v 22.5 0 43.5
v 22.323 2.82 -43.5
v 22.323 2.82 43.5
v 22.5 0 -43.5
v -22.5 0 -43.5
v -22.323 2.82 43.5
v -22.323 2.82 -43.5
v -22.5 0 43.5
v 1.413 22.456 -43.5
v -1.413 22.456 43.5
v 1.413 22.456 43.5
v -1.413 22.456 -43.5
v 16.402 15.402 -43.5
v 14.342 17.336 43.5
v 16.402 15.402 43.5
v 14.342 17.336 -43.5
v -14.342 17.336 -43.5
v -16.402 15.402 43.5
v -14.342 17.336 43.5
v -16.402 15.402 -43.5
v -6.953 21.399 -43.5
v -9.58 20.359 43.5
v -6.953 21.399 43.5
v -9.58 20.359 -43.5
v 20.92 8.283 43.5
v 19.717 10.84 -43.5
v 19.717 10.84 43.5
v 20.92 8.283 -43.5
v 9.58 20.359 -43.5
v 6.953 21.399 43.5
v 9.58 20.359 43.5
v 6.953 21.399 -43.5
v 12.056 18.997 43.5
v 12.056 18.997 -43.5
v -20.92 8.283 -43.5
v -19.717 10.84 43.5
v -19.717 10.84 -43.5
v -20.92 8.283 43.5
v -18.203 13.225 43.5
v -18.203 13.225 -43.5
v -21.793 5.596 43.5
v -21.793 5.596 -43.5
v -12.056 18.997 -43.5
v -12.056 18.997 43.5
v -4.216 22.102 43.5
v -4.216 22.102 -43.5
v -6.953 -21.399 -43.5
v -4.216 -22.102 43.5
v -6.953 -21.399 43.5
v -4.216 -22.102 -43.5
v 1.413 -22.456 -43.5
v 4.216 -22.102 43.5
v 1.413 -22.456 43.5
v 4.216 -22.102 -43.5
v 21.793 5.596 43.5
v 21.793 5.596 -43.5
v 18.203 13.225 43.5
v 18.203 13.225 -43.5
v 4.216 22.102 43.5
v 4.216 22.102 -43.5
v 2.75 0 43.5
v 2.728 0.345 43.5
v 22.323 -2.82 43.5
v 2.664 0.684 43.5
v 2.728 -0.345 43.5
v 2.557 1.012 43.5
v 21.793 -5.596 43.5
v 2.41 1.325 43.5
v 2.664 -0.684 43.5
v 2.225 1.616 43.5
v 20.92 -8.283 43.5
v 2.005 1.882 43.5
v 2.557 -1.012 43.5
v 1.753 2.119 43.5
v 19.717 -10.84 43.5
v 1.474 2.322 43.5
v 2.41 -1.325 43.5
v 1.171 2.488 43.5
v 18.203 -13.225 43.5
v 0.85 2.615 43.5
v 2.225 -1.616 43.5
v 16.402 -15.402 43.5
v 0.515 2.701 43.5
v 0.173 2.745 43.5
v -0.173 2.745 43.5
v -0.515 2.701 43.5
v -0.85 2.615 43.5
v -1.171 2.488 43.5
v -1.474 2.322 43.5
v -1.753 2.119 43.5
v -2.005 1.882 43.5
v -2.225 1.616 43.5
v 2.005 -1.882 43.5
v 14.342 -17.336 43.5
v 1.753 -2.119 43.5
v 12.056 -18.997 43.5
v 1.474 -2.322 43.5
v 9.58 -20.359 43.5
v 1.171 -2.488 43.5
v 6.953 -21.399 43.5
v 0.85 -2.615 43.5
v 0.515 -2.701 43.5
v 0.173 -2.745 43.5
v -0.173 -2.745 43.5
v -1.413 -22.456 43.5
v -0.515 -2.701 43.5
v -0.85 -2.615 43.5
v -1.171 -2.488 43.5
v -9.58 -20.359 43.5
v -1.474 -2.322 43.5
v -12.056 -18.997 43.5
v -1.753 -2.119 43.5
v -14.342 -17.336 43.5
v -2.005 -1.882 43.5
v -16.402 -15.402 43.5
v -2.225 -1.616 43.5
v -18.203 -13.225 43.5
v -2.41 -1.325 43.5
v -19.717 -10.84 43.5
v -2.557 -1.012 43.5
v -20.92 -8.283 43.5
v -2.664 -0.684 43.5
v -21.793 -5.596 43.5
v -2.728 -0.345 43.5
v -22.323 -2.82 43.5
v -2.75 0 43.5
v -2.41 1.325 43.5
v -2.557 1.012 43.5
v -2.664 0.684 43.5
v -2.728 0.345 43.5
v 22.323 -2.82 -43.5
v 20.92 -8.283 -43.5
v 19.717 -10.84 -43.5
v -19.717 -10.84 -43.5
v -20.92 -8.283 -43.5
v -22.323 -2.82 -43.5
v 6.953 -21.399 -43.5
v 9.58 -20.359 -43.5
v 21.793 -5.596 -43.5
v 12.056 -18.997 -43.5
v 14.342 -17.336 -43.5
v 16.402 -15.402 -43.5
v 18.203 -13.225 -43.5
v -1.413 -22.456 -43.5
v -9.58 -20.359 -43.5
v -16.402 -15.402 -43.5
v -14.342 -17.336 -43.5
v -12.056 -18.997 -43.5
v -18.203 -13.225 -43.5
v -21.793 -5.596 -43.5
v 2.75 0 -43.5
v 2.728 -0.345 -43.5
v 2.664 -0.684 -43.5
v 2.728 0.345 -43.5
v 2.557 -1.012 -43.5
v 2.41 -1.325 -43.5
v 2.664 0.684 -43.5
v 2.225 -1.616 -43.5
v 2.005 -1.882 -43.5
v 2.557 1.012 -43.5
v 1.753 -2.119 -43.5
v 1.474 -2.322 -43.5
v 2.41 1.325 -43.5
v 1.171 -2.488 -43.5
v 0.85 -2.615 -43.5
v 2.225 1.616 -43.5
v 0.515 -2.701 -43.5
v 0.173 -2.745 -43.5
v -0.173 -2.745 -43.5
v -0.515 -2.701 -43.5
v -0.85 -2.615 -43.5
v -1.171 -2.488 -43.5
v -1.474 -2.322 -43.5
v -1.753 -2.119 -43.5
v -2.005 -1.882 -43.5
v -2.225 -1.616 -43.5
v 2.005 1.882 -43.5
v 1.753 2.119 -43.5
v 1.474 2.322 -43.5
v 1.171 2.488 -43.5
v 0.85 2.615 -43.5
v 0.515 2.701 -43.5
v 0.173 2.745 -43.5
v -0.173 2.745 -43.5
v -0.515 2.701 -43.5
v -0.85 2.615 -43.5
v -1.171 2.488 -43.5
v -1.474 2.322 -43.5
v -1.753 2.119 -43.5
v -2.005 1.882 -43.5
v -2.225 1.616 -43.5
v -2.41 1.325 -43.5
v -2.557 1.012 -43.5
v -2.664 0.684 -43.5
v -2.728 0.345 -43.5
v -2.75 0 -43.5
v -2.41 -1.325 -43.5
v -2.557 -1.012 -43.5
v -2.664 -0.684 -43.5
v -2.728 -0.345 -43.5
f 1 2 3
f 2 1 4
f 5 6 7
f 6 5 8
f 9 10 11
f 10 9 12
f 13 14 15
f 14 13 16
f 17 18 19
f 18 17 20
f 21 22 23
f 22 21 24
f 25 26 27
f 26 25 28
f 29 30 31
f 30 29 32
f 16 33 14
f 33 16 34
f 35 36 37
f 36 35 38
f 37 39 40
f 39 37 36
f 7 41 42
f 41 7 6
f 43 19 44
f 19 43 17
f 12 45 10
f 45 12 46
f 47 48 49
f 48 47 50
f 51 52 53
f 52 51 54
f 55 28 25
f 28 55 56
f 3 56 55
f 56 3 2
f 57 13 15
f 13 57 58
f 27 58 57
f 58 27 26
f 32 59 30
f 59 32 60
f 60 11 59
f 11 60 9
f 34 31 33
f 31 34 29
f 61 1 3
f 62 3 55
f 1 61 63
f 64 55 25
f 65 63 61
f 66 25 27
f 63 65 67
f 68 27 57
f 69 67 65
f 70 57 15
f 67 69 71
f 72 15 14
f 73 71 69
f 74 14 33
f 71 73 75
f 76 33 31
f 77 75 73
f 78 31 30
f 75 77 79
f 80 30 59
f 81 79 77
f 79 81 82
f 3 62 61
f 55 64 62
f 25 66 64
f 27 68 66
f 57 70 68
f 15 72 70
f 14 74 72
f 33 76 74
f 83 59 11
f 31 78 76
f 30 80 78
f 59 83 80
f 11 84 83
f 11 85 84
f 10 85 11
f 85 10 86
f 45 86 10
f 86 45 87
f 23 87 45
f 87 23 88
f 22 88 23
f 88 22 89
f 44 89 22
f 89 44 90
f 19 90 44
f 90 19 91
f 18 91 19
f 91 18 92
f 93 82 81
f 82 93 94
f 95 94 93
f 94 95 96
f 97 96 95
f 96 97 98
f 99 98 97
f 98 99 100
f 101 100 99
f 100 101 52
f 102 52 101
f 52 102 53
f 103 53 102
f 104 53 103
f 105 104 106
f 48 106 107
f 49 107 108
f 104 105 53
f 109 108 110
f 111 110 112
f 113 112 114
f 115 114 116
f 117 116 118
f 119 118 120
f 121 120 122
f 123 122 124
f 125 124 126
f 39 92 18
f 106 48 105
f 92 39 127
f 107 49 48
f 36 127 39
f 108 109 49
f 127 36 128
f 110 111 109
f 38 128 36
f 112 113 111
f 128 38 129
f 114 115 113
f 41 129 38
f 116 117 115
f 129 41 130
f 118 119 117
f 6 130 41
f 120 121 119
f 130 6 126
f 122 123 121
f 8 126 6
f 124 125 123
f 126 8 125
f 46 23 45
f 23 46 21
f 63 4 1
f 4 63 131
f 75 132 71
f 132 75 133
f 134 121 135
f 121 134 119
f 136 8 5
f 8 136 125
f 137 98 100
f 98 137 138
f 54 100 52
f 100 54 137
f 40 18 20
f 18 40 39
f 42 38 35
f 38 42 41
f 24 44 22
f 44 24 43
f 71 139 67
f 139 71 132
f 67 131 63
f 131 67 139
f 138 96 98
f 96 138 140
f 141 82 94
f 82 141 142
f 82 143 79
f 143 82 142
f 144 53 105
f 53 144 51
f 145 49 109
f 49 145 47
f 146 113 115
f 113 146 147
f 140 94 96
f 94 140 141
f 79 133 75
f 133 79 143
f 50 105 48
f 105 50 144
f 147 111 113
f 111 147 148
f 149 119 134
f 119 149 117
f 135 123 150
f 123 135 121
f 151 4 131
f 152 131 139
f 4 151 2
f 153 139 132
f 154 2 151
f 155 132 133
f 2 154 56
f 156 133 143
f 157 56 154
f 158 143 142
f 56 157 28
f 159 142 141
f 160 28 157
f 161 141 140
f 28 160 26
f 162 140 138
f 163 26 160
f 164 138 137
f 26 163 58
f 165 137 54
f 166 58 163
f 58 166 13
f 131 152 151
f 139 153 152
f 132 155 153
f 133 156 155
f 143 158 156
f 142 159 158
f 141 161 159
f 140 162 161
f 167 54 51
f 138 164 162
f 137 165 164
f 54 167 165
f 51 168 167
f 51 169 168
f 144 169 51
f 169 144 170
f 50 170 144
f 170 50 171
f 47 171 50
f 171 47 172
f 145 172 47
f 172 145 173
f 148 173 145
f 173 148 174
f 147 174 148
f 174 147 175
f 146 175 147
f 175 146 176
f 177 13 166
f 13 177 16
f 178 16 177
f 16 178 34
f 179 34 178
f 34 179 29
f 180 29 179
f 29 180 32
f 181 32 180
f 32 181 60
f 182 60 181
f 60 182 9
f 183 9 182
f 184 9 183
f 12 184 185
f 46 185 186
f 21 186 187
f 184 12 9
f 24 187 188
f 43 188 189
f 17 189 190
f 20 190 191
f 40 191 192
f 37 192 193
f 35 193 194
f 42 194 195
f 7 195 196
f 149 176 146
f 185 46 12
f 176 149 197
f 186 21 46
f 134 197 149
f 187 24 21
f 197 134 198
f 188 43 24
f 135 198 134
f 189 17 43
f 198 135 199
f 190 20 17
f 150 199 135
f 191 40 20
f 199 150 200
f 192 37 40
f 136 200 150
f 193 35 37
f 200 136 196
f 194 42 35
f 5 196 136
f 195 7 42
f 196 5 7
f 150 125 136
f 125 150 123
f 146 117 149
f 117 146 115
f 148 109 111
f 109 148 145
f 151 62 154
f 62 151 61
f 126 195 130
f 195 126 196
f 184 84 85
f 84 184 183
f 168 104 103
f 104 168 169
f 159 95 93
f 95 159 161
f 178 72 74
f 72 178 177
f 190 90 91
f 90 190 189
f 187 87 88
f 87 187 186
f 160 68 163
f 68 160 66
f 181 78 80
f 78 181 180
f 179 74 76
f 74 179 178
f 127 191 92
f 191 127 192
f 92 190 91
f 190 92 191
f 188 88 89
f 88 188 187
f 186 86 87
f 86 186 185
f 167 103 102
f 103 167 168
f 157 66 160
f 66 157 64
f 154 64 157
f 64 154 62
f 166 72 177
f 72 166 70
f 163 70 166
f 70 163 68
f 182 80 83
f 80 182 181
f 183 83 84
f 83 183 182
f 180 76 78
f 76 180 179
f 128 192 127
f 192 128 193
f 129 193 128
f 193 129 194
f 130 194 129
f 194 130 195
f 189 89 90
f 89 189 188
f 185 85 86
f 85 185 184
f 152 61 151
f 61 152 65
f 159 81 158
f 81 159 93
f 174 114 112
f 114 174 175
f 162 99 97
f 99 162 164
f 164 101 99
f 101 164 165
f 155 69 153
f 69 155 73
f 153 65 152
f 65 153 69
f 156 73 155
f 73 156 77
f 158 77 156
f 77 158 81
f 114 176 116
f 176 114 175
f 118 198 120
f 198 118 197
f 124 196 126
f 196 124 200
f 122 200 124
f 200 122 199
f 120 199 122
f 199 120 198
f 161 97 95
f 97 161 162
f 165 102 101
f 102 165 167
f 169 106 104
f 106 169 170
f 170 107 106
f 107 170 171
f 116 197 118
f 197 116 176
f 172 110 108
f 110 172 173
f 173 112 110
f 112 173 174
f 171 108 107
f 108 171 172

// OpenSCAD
$fn = 50;


difference() {
	union() {
		translate(v = [0, 0, -43.5000000000]) {
			cylinder(h = 87, r = 22.5000000000);
		}
	}
	union() {
		translate(v = [0, 0, -100.0000000000]) {
			cylinder(h = 200, r = 2.7500000000);
		}
	}
}
